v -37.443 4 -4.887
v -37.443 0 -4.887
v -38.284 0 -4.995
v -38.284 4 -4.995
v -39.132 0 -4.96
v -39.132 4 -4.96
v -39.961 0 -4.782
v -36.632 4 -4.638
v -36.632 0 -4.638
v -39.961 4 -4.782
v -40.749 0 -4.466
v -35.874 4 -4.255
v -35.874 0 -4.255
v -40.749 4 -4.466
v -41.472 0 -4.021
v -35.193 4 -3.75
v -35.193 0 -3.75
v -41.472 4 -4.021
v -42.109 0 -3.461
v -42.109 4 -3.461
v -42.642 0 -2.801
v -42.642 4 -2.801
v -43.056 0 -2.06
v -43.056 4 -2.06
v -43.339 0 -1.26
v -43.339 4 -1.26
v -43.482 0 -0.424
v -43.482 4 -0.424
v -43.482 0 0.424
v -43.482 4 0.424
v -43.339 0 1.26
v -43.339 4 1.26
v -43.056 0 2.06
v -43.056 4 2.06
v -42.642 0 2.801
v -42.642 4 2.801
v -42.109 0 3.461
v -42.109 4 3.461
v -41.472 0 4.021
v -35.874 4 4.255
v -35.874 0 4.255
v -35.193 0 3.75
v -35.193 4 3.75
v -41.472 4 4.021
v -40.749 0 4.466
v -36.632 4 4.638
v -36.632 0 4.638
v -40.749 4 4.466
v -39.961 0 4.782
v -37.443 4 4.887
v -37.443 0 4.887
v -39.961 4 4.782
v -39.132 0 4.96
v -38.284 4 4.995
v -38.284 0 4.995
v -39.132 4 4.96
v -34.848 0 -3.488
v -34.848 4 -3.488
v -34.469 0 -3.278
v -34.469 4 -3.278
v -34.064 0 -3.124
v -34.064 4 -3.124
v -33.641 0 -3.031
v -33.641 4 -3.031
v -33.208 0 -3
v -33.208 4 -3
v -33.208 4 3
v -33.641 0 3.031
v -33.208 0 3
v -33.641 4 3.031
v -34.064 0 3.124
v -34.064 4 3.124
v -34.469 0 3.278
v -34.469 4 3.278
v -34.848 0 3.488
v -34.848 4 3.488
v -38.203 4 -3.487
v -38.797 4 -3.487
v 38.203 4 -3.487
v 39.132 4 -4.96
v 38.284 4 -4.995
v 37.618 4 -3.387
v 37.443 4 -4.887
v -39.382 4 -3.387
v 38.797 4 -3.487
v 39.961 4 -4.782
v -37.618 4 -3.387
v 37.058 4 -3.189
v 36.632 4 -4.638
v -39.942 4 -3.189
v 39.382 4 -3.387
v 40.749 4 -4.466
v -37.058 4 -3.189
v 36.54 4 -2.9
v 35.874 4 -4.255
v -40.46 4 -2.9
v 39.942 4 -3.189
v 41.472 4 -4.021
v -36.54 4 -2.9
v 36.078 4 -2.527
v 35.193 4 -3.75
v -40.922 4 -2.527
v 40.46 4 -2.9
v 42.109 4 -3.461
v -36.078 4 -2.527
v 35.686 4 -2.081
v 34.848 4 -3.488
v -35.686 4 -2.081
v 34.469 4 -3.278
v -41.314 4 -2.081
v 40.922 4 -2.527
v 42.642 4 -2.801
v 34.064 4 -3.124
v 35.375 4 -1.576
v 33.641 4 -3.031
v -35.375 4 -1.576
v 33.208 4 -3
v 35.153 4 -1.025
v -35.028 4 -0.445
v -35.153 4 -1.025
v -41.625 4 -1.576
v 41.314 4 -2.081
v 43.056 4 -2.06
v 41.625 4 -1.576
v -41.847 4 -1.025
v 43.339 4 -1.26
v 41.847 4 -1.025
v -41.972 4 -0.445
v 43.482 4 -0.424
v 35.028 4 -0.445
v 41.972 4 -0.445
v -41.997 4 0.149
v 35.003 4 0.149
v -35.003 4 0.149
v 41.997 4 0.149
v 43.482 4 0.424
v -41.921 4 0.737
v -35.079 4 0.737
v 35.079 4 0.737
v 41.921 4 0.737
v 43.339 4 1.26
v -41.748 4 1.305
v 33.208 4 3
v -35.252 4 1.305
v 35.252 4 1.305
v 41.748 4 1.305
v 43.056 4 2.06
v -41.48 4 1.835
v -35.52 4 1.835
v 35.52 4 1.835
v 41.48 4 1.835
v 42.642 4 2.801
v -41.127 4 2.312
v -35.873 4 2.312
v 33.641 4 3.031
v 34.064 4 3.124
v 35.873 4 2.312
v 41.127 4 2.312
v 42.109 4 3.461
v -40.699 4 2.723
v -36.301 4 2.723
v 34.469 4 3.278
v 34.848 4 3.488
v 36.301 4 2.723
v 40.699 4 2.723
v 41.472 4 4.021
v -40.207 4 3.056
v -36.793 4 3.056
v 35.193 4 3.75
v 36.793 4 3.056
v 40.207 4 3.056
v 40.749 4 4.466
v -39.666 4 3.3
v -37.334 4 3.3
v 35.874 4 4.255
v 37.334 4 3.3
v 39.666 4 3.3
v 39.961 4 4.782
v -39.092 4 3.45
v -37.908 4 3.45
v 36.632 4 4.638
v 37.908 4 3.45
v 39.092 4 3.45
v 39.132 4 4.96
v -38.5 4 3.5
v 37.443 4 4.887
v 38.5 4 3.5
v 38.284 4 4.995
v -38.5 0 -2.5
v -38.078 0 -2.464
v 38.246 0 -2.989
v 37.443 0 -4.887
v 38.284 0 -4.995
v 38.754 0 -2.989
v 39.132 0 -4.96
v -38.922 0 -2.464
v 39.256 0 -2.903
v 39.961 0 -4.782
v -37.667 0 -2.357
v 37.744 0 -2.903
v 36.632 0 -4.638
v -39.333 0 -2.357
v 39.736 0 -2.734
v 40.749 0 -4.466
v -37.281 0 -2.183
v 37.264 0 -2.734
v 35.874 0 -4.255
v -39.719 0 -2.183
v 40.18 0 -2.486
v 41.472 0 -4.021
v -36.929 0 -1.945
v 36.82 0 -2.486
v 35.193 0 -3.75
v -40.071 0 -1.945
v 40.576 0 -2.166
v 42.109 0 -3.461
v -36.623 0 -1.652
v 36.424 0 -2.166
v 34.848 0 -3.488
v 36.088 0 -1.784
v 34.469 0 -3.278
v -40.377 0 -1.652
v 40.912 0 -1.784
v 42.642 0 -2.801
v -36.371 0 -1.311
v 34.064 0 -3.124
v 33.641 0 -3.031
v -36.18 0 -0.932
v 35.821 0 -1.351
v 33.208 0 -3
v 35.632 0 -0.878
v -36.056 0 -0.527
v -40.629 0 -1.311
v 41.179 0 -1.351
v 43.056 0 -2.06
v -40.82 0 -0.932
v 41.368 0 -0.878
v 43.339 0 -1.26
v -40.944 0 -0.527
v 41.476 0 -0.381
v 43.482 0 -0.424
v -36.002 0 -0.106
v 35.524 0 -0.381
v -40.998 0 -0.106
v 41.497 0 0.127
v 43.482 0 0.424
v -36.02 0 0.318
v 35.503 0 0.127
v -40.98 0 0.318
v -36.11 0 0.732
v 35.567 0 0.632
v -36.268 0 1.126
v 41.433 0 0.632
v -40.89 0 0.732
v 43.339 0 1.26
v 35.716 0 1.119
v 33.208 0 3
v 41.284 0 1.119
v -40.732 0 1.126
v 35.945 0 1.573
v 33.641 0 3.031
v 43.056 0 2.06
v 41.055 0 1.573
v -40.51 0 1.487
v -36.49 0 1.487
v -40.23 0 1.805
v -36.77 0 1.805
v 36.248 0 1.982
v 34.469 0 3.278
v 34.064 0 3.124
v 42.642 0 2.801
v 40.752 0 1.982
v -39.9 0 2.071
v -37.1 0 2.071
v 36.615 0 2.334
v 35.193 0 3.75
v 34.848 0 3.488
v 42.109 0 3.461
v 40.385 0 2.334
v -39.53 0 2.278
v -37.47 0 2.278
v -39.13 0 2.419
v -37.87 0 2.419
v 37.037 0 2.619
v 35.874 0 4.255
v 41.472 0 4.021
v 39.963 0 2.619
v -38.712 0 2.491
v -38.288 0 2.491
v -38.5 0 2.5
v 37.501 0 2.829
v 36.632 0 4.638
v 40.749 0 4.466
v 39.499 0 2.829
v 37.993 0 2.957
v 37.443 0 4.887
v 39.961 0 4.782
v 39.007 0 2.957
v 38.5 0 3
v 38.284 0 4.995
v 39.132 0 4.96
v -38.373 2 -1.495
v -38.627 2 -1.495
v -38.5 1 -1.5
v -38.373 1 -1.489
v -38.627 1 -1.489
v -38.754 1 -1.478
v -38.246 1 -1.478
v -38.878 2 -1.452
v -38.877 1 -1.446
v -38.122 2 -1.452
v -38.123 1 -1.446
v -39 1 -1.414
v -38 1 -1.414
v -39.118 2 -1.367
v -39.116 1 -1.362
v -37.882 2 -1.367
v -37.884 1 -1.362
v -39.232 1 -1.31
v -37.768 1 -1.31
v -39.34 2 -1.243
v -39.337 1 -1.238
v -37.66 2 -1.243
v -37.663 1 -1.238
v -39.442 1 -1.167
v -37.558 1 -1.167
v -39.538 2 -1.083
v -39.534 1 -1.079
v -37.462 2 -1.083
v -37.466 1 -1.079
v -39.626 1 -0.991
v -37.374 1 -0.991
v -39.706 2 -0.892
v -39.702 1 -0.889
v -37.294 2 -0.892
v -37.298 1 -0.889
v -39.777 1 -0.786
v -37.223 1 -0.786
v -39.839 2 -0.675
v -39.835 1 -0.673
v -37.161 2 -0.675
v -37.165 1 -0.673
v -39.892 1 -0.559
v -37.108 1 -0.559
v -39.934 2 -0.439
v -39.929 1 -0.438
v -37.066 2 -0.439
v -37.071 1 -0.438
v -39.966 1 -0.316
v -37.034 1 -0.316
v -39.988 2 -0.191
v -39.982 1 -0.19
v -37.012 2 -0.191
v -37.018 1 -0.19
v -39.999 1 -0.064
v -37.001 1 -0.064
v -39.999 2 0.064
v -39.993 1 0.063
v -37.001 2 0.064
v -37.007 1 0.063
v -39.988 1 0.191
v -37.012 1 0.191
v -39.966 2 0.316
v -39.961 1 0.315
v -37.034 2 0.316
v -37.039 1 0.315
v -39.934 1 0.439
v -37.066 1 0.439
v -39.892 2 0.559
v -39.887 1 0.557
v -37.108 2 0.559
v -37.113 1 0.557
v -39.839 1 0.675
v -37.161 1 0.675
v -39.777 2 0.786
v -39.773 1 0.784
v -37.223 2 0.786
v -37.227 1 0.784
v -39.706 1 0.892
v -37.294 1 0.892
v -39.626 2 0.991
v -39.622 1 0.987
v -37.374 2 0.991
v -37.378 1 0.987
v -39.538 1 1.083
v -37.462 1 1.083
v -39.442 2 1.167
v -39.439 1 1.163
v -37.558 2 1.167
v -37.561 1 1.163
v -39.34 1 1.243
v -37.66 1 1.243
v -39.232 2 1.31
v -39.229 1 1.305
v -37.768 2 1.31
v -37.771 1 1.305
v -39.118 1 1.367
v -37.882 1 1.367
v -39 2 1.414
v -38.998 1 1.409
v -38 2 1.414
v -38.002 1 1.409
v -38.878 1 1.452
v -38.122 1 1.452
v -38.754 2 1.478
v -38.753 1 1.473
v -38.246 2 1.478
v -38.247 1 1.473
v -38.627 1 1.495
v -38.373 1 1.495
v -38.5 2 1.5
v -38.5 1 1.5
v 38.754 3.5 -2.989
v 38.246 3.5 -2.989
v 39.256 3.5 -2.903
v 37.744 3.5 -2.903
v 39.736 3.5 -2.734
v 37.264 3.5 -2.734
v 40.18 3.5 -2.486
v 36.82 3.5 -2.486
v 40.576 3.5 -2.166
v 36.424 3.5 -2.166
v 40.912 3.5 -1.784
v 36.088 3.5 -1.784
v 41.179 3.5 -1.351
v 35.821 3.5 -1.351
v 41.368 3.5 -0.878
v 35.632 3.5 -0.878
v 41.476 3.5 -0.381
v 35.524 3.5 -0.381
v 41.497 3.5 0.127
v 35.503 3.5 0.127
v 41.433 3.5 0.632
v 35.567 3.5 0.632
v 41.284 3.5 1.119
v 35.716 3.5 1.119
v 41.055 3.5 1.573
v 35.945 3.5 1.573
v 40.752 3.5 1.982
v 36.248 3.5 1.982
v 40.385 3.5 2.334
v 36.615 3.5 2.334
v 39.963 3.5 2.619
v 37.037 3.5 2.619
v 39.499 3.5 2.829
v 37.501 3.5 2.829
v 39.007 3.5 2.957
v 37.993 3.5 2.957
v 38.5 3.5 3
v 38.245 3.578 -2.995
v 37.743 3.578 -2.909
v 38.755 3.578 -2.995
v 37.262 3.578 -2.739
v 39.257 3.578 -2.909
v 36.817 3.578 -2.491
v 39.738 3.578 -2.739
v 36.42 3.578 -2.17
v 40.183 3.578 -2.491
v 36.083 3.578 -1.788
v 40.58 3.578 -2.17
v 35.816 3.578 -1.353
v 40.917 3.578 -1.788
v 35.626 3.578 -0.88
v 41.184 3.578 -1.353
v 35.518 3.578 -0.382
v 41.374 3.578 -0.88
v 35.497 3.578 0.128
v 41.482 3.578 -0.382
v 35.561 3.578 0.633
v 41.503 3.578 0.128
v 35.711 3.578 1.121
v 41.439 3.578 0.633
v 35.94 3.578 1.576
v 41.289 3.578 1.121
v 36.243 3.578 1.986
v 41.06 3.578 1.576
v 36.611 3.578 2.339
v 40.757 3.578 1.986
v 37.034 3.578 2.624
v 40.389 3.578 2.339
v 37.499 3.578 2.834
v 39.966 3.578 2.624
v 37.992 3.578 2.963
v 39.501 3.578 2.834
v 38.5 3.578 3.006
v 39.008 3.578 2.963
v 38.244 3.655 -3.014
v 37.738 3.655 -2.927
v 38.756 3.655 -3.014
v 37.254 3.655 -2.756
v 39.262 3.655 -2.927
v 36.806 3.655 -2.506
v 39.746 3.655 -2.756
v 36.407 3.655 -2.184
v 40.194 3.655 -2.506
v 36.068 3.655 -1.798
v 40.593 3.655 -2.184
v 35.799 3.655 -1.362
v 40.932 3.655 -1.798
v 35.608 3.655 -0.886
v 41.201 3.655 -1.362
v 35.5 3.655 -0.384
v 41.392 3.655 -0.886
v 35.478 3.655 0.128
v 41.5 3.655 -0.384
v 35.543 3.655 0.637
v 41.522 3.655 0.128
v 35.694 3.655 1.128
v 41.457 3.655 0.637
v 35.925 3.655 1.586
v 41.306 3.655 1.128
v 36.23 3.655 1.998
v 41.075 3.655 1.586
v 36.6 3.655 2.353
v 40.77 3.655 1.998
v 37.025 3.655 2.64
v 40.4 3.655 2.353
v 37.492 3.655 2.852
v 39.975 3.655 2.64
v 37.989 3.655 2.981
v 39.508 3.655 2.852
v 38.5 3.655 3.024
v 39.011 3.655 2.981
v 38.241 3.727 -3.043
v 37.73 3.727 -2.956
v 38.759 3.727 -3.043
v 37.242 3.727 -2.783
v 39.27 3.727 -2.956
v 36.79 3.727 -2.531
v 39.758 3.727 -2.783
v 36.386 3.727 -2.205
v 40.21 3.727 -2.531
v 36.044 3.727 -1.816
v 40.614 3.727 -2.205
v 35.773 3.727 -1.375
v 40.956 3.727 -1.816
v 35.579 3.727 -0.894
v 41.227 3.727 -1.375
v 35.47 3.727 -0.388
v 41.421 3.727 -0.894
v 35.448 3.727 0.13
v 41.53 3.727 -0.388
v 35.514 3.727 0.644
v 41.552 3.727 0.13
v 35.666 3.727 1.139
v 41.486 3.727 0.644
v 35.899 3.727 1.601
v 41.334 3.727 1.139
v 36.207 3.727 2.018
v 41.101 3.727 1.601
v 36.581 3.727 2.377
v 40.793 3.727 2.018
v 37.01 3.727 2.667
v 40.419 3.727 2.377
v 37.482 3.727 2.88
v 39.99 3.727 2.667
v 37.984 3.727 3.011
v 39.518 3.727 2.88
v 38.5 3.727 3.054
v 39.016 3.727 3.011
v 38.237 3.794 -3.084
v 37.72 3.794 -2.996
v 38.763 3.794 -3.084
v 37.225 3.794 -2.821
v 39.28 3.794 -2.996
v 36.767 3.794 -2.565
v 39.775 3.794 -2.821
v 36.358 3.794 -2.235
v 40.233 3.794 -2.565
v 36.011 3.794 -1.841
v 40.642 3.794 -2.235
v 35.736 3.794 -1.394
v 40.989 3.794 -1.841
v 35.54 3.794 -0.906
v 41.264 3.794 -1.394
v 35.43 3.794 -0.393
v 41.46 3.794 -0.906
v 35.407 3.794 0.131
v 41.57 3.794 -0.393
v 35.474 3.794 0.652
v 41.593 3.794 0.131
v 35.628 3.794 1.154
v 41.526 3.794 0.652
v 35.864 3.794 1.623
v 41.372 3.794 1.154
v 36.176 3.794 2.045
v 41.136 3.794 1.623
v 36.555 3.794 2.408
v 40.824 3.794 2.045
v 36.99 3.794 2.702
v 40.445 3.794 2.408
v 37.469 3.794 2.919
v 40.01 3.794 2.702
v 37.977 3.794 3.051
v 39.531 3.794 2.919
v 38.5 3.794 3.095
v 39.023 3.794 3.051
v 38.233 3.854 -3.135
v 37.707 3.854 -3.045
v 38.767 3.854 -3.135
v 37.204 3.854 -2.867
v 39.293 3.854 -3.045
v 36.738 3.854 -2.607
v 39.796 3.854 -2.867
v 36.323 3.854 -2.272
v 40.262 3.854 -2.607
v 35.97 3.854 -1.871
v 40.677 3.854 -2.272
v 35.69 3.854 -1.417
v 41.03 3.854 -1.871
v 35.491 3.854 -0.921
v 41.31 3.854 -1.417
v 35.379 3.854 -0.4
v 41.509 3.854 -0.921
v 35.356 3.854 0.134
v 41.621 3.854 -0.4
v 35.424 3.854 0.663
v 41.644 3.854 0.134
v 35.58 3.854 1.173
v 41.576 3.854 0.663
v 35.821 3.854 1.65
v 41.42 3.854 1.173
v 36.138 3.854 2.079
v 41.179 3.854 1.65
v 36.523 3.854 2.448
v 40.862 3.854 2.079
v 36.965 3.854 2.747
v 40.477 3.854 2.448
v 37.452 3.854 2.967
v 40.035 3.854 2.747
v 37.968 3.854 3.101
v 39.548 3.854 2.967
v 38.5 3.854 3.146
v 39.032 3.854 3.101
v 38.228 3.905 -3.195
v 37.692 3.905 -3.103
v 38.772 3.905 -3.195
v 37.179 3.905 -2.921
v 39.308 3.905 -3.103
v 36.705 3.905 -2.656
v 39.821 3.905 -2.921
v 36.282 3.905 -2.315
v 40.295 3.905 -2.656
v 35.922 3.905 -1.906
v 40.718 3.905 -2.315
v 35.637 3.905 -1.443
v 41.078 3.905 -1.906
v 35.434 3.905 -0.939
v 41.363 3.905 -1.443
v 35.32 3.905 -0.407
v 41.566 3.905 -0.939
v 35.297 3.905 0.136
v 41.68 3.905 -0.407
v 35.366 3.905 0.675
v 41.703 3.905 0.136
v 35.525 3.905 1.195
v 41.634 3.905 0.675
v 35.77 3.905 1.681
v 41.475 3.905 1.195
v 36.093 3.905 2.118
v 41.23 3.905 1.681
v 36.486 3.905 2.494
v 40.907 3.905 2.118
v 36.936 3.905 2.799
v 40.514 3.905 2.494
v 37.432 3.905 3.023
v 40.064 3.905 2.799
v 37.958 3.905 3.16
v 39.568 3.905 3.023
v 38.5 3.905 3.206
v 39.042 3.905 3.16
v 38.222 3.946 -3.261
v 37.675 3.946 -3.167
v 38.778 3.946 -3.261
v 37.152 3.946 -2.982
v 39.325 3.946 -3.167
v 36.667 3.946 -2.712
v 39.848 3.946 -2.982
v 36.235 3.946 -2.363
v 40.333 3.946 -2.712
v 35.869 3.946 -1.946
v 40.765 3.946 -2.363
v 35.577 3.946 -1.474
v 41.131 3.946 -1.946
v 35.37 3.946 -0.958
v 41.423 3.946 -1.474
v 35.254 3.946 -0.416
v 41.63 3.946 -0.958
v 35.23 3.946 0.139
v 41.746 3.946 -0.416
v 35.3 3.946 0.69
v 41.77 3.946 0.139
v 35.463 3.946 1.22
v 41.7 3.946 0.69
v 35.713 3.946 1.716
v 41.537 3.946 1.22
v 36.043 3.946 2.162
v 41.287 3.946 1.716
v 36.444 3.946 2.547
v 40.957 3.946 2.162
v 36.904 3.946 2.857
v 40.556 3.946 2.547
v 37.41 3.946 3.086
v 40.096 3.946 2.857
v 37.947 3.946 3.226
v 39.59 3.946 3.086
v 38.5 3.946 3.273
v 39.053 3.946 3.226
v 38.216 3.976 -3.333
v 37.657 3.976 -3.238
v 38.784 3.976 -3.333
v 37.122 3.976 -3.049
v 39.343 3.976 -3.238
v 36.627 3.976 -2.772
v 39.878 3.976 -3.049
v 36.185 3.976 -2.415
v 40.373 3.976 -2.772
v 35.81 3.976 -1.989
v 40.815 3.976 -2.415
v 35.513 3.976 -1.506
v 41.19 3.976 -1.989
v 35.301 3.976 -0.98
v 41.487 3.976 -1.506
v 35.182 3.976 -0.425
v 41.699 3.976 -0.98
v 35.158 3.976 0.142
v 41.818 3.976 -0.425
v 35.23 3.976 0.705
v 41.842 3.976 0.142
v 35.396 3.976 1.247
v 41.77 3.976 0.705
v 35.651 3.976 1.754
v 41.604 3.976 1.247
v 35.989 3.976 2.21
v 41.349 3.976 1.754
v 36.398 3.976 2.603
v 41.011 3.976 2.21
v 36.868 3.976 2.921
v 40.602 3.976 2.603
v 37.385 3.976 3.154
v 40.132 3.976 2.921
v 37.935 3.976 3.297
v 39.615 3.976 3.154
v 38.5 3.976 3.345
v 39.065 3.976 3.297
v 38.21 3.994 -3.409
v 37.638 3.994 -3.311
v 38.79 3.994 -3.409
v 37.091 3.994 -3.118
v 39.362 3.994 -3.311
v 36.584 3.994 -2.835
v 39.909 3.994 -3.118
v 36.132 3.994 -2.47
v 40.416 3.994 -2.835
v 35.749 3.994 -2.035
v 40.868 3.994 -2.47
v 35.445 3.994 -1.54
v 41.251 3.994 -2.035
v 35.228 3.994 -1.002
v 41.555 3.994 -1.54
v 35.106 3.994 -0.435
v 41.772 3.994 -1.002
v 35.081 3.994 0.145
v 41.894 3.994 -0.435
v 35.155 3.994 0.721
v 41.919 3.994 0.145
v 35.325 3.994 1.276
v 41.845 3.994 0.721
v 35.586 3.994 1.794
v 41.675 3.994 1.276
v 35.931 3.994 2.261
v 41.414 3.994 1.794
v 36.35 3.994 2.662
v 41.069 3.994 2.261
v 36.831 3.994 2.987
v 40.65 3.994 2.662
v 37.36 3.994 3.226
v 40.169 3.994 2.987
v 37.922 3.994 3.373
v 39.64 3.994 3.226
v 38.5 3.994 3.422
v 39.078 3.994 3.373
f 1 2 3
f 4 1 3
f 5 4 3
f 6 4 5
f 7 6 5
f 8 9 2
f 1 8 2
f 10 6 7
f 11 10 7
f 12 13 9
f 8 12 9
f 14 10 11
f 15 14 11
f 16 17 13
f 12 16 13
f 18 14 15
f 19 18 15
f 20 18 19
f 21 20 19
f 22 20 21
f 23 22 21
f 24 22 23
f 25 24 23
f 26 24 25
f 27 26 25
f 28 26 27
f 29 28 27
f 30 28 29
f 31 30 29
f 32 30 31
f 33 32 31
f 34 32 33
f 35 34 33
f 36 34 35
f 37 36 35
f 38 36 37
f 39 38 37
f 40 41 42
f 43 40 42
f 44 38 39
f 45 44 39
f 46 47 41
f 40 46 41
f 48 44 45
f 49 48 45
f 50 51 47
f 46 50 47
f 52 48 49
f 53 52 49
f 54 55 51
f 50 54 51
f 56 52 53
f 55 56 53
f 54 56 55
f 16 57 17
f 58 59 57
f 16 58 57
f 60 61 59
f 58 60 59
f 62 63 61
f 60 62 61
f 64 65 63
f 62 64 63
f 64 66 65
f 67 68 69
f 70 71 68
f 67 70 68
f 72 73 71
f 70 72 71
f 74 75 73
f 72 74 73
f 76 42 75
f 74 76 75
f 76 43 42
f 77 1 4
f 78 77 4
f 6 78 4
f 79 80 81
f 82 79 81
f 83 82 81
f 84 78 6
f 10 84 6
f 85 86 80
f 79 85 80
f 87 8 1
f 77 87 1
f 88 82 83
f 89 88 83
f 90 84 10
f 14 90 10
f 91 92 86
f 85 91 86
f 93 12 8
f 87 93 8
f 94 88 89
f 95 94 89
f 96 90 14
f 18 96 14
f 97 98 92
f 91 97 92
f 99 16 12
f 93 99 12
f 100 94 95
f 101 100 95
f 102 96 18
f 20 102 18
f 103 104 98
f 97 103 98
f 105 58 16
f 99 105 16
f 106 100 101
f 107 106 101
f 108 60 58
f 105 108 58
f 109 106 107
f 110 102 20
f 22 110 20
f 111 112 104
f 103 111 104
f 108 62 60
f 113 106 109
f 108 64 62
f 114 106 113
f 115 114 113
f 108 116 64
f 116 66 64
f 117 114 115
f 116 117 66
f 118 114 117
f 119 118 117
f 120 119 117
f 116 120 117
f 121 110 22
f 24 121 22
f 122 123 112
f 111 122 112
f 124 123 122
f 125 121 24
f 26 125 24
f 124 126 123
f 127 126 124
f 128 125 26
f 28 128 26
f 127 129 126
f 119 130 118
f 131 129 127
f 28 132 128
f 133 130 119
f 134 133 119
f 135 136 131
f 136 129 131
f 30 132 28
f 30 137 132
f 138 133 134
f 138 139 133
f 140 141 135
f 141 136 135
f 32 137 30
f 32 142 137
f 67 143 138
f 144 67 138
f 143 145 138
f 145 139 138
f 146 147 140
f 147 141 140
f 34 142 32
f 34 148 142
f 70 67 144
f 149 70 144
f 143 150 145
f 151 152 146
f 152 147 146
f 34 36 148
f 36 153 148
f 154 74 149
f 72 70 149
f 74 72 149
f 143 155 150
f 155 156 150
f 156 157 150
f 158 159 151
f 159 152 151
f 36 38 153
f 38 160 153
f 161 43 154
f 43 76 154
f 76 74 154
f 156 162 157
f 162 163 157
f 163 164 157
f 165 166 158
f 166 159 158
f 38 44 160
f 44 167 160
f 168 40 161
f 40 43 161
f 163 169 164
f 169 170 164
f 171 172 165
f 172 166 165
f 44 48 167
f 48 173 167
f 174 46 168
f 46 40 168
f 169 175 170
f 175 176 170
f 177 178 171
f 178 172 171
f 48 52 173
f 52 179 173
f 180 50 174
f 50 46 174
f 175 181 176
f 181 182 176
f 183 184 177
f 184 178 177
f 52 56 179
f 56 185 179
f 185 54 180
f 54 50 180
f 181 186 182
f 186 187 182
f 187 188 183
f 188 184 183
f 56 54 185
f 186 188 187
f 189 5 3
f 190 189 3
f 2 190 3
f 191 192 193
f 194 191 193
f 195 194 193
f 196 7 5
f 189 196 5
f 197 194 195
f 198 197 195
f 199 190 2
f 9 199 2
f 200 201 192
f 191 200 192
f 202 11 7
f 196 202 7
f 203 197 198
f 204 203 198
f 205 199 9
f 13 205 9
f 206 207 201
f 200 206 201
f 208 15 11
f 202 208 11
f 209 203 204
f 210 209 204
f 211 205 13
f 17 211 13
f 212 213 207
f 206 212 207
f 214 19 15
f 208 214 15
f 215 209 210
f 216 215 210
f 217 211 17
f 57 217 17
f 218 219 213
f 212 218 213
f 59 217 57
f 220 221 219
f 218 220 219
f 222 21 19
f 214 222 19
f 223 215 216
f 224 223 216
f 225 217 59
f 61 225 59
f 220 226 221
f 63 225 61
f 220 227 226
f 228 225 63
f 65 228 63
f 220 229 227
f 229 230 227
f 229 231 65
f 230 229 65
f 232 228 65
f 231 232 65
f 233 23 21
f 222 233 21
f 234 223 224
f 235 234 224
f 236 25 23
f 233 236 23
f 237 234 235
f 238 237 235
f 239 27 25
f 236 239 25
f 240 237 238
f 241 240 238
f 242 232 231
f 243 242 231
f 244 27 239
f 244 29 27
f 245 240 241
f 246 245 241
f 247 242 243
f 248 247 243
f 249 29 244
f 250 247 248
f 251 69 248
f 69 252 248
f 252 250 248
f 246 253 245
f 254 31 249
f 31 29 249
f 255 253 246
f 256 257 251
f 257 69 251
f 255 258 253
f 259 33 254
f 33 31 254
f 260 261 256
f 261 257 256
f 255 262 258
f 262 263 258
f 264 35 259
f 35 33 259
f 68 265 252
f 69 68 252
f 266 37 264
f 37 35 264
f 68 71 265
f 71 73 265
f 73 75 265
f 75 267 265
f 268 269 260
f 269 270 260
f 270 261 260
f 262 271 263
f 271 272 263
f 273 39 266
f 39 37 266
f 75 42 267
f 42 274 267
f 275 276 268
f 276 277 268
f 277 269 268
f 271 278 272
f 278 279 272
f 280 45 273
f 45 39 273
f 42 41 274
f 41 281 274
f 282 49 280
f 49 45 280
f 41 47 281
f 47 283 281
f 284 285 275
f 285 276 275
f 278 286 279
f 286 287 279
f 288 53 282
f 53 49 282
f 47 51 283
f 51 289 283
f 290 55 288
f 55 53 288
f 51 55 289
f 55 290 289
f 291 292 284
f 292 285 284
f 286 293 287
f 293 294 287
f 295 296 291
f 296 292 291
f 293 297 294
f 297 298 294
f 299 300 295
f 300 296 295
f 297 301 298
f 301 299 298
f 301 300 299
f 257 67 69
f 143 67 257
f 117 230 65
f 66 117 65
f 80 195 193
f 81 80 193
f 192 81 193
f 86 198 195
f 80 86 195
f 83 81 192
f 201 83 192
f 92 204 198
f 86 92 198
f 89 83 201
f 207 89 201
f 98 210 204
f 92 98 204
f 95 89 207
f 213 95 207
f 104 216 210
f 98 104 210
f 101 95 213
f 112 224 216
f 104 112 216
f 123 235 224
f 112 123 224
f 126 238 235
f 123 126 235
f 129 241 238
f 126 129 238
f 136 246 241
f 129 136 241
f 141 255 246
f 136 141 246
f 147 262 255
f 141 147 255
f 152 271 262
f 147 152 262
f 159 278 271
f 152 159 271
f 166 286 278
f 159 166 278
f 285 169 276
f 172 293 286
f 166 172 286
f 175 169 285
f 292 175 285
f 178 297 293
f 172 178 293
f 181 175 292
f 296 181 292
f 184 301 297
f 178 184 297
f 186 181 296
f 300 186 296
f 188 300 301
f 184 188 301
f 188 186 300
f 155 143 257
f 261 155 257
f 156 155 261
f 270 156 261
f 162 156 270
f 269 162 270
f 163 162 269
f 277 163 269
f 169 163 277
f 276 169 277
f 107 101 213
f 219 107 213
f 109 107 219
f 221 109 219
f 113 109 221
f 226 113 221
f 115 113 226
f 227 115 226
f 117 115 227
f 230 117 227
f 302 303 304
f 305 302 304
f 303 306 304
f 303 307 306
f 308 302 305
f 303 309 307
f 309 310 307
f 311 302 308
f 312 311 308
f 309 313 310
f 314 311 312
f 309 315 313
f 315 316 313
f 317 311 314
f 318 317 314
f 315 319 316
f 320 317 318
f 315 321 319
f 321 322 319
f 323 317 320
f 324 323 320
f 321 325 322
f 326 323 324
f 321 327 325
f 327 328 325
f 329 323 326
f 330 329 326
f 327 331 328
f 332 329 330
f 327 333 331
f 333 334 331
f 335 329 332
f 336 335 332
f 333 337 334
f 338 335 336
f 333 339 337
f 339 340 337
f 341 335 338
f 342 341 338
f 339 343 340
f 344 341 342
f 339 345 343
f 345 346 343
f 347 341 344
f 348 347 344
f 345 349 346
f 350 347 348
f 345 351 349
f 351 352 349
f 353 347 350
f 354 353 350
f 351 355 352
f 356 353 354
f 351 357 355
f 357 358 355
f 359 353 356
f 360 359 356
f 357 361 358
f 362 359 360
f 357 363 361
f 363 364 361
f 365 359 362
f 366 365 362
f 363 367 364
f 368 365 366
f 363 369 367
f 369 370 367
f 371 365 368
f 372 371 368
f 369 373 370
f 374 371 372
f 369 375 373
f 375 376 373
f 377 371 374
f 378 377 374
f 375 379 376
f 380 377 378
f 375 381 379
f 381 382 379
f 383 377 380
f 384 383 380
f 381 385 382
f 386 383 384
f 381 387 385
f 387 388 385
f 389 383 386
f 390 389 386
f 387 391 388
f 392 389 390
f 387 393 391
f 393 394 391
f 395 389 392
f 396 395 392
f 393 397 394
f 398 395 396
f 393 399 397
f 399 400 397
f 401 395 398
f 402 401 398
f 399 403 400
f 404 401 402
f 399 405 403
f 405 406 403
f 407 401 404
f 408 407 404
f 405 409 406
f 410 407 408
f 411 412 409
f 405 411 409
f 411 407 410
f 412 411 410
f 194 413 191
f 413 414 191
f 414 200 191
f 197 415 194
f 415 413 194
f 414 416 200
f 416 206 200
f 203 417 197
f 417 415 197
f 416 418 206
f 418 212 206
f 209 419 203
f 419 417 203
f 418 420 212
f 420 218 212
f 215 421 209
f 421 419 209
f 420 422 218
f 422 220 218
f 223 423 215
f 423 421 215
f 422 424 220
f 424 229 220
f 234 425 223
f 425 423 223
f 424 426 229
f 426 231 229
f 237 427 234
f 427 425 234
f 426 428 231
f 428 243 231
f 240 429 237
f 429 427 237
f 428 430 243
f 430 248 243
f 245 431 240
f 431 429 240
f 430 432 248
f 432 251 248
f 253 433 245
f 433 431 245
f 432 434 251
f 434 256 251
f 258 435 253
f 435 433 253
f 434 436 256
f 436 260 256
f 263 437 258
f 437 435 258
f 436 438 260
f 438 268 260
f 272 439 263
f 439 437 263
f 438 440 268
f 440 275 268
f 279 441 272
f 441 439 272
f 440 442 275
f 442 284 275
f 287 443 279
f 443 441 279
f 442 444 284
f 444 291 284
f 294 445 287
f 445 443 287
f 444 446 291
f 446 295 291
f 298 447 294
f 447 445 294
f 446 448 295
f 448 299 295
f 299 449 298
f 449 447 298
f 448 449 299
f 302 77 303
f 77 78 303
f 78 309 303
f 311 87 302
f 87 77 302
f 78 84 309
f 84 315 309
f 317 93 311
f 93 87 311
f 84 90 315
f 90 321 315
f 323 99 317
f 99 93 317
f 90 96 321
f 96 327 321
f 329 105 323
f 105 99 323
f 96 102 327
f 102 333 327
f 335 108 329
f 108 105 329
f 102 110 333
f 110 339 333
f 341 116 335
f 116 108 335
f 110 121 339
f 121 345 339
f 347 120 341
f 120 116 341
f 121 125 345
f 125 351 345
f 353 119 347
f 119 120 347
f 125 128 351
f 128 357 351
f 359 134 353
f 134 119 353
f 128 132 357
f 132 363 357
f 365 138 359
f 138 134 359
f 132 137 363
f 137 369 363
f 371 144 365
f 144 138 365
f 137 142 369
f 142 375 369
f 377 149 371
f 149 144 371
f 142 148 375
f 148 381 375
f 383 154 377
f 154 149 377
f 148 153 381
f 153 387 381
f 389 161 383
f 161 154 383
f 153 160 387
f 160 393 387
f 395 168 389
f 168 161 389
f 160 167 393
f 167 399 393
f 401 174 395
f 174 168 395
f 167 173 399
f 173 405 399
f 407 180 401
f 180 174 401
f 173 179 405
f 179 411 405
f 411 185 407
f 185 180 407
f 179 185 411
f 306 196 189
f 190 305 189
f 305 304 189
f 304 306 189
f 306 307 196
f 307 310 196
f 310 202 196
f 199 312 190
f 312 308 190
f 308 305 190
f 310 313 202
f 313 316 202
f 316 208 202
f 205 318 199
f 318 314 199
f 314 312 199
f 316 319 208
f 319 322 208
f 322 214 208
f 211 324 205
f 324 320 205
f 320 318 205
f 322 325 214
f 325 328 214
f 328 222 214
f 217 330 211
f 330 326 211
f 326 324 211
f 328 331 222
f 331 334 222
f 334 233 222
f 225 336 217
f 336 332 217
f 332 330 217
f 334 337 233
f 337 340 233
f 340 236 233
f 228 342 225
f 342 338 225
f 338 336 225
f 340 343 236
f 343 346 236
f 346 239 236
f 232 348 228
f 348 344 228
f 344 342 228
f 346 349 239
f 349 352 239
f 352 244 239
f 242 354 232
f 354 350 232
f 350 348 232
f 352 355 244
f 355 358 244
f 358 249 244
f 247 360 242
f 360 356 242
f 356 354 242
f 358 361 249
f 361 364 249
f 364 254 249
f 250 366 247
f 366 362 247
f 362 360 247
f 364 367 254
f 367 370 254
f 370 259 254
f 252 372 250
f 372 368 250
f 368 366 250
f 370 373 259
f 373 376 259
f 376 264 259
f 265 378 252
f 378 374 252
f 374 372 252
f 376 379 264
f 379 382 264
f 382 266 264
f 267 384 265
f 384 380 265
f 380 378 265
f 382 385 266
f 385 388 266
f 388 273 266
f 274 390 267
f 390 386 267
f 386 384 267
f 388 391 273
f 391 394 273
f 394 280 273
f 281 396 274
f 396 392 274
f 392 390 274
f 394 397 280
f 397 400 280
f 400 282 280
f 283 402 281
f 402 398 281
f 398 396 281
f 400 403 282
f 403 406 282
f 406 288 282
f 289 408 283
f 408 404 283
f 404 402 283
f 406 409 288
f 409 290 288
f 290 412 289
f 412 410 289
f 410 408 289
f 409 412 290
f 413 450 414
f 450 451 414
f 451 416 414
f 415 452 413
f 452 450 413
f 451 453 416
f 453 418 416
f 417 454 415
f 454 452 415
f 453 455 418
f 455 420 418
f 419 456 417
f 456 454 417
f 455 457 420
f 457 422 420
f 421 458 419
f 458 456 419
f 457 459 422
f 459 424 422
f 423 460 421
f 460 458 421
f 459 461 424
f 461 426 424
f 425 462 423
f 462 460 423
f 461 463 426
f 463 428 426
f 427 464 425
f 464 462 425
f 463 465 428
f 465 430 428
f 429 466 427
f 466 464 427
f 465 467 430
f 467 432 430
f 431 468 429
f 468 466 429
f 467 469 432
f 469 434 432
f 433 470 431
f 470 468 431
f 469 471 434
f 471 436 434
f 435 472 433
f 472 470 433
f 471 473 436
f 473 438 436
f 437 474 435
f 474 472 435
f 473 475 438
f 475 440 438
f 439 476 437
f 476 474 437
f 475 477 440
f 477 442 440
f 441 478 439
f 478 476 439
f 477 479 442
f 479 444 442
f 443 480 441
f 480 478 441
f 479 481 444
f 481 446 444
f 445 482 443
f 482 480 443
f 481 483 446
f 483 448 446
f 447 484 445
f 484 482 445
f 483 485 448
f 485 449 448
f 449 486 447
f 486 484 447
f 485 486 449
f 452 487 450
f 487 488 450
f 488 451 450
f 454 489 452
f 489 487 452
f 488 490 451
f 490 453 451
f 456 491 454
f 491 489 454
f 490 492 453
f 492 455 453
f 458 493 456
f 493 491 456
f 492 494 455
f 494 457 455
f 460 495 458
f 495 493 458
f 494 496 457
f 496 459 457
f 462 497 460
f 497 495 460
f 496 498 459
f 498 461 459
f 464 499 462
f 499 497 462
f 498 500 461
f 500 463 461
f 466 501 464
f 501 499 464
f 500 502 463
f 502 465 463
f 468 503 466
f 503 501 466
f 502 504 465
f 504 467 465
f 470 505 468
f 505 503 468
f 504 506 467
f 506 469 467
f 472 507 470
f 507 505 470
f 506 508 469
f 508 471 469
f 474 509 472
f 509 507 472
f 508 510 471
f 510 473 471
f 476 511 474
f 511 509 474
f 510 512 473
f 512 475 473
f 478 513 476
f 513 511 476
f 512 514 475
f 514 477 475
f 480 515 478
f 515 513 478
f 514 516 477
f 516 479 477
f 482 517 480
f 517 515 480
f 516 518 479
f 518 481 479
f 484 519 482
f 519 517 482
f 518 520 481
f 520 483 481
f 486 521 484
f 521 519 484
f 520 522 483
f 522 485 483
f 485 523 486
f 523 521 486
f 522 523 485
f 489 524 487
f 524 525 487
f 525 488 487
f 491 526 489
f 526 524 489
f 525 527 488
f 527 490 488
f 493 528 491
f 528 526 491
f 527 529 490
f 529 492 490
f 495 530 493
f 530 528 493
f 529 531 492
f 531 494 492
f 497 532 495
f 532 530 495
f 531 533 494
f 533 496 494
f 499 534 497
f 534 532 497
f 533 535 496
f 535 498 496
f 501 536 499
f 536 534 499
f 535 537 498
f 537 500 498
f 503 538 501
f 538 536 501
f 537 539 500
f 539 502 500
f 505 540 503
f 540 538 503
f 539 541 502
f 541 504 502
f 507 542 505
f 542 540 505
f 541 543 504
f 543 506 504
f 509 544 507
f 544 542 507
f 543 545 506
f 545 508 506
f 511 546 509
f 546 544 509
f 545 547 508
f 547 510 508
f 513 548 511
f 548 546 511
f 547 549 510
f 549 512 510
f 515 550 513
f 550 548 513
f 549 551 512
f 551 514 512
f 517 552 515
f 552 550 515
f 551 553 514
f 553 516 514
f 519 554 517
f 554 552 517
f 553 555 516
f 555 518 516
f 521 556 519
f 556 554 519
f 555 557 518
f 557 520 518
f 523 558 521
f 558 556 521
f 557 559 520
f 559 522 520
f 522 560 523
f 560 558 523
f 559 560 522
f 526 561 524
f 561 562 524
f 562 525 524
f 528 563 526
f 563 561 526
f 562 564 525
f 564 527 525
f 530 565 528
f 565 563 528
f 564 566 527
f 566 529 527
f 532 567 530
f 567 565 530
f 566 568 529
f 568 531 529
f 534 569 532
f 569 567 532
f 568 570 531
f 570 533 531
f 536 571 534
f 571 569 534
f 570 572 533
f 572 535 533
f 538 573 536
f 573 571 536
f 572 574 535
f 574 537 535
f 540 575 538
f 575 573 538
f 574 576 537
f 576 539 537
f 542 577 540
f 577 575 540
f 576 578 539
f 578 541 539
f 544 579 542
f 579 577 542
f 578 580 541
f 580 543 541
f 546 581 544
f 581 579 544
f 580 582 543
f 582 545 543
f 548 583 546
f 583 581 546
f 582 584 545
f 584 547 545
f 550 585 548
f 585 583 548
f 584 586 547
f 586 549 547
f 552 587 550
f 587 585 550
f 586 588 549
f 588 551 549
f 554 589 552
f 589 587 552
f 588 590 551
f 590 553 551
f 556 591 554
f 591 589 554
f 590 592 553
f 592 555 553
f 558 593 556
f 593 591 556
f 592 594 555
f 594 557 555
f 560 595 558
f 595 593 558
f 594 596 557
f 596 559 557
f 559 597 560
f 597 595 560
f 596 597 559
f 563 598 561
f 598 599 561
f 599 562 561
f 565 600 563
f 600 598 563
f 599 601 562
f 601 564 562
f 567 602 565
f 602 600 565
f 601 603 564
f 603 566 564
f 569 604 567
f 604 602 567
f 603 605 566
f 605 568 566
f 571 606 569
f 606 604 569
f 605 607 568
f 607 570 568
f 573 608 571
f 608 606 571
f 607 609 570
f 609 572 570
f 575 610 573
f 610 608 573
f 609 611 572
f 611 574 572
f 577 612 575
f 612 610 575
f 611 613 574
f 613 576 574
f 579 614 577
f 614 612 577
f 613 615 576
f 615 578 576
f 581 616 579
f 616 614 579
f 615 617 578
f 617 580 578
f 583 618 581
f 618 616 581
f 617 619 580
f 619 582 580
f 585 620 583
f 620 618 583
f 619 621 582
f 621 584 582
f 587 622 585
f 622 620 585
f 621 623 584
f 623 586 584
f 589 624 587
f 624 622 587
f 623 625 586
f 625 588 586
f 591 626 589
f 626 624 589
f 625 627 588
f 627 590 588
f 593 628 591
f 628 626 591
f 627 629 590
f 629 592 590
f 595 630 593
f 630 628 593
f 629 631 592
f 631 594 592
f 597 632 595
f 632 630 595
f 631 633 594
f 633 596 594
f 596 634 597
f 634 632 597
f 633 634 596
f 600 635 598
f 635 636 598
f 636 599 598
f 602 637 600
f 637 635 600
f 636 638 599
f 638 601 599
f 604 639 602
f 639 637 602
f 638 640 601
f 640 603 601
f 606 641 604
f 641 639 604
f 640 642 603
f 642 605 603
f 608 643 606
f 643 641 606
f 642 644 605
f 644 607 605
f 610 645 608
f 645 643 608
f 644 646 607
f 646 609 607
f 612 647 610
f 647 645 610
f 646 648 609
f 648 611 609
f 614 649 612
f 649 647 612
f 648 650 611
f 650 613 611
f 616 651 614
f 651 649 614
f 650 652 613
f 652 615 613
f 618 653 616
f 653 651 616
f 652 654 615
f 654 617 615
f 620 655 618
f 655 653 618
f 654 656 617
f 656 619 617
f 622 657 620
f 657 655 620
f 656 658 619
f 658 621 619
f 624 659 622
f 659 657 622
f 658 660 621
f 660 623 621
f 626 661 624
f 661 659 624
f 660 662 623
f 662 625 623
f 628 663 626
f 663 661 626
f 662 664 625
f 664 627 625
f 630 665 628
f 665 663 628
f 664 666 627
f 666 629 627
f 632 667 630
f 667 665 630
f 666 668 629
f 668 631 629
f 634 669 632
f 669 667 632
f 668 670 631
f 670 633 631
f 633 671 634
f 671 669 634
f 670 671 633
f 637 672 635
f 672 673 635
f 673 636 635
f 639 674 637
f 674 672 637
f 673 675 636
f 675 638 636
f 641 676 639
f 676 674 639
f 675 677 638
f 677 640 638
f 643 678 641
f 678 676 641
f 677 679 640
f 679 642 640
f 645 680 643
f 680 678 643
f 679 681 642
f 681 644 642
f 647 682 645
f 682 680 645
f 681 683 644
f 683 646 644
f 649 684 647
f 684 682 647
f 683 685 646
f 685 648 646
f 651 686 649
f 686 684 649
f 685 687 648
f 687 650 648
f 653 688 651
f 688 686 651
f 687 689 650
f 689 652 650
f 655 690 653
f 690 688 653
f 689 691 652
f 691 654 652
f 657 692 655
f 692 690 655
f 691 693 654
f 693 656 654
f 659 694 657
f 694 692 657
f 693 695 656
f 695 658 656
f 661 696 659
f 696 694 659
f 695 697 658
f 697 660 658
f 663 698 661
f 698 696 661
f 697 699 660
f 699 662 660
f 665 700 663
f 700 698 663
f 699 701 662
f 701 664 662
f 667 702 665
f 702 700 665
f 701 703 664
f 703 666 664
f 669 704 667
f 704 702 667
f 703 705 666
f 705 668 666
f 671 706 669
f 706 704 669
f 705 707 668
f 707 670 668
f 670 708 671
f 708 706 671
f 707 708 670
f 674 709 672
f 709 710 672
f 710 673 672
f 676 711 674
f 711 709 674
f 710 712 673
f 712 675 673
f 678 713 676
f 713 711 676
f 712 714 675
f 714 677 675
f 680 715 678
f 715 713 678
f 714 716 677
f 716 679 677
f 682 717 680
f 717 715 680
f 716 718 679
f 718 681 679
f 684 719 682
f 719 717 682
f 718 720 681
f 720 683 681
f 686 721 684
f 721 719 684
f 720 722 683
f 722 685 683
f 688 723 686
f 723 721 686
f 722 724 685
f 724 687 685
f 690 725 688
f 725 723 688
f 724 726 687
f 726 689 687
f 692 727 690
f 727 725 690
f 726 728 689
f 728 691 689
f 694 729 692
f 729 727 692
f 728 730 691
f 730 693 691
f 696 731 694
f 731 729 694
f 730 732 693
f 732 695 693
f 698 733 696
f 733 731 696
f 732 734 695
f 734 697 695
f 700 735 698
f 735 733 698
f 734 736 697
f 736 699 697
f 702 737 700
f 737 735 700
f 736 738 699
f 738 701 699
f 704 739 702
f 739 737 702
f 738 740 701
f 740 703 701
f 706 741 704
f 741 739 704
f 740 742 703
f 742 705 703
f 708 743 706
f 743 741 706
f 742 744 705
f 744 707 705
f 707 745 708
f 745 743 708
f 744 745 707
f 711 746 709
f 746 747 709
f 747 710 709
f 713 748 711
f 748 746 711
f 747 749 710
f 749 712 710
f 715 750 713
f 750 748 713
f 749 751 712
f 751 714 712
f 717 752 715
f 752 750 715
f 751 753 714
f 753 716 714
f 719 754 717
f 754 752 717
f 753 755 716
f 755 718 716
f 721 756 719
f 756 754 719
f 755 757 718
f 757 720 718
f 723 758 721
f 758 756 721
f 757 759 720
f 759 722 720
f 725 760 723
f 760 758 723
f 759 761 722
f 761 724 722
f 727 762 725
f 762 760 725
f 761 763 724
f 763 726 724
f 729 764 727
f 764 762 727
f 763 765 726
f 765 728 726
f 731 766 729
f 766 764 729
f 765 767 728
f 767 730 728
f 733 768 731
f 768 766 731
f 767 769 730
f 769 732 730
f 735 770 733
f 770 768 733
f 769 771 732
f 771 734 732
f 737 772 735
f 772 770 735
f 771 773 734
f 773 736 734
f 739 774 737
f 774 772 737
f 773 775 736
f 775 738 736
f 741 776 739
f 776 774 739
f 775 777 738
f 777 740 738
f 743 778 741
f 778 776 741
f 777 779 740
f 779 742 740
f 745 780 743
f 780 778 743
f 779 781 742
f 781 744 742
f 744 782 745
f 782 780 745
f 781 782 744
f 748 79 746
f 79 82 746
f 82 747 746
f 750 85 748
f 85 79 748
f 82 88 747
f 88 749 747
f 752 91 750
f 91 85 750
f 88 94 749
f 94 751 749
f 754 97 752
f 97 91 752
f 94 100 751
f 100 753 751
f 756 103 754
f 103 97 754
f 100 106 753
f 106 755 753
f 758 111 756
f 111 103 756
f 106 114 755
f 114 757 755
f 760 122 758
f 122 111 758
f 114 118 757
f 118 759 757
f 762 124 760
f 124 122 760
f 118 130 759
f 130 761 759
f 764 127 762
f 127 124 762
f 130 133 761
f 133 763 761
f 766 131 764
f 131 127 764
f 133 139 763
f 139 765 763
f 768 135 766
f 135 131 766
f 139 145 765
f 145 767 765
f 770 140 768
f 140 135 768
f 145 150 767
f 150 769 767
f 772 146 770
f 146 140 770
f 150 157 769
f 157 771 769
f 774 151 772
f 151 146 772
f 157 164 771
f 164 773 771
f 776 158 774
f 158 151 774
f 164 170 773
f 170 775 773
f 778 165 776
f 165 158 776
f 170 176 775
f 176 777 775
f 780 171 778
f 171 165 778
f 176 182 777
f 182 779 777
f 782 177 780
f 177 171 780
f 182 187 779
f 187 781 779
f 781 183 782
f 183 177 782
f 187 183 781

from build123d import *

# Parameters (mm, degrees)
SKETCH1_W                = 73.441671578
SKETCH1_H                = 6
BOSS_EXTRUDE1_DEPTH      = 4
SKETCH2_R                = 5
BOSS_EXTRUDE3_DEPTH      = 4
SKETCH3_R                = 5
BOSS_EXTRUDE4_DEPTH      = 4
FILLET1_R                = 3
FILLET3_R                = 3
F_3_0_3_DIAMETER_HOLE1_D = 3
F_6_0_6_DIAMETER_HOLE1_D = 6
CHAMFER1_SIZE            = 2
CHAMFER2_SIZE            = 1
FILLET4_R                = 0.5


with BuildPart() as part:
    # Sketch1 → Boss-Extrude1 (new body)
    with BuildSketch(Plane(origin=(0, 0, 0), x_dir=(1, 0, 0), z_dir=(0, 1, 0))):
        with Locations((1.782889385, 0)):
            Rectangle(SKETCH1_W, SKETCH1_H)
    extrude(amount=BOSS_EXTRUDE1_DEPTH)


with BuildPart() as body_2:
    # Sketch2 → Boss-Extrude3 (new body)
    with BuildSketch(Plane.XZ):
        with Locations(Location((38.5, 0, 0), (0, 0, 270))):
            Circle(SKETCH2_R)
    extrude(amount=-BOSS_EXTRUDE3_DEPTH)


with BuildPart() as body_3:
    # Sketch3 → Boss-Extrude4 (new body)
    with BuildSketch(Plane.XZ):
        with Locations(Location((-38.5, 0, 0), (0, 0, 270))):
            Circle(SKETCH3_R)
    extrude(amount=-BOSS_EXTRUDE4_DEPTH)


with BuildPart() as part_1:
    add(part.part)

    # Intersect3: read off the stored shape, not the designer's step
    # Intersect3: union body 3
    add(body_3.part)

    # Fillet1
    fillet1_edges = [part_1.edges().sort_by_distance(p)[0] for p in [
        (-34.5, 2, 3),
        (-34.5, 2, -3),
    ]]
    fillet(fillet1_edges, radius=FILLET1_R)

    # Intersect4: read off the stored shape, not the designer's step
    # Intersect4: union body 2
    add(body_2.part)

    # Fillet3
    fillet3_edges = [part_1.edges().sort_by_distance(p)[0] for p in [
        (34.5, 2, 3),
        (34.5, 2, -3),
    ]]
    fillet(fillet3_edges, radius=FILLET3_R)

    # Ø3.0 (3) Diameter Hole1 (through all)
    with Locations(Plane(origin=(0, 4, 0), x_dir=(1, 0, 0), z_dir=(0, 1, 0))):
        with Locations((-38.5, 0)):
            Hole(F_3_0_3_DIAMETER_HOLE1_D / 2)

    # Ø6.0 (6) Diameter Hole1 (through all)
    with Locations(Plane(origin=(0, 4, 0), x_dir=(1, 0, 0), z_dir=(0, 1, 0))):
        with Locations((38.5, 0)):
            Hole(F_6_0_6_DIAMETER_HOLE1_D / 2)

    # Chamfer1
    chamfer1_edges = [part_1.edges().sort_by_distance(p)[0] for p in [
        (-37, 4, 0),
    ]]
    chamfer(chamfer1_edges, length=CHAMFER1_SIZE)

    # Chamfer2
    chamfer2_edges = [part_1.edges().sort_by_distance(p)[0] for p in [
        (-37, 0, 0),
    ]]
    chamfer(chamfer2_edges, length=CHAMFER2_SIZE)

    # Fillet4
    fillet4_edges = [part_1.edges().sort_by_distance(p)[0] for p in [
        (41.5, 4, 0),
    ]]
    fillet(fillet4_edges, radius=FILLET4_R)


solid = part_1.part
